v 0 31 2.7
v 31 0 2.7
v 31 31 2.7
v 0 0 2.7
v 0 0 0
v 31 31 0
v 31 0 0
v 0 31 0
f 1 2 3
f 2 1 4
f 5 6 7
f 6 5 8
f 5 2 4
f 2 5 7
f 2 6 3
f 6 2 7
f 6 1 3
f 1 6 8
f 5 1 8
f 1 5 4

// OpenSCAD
/* Warning, this is a very basic generator with a lot of approximation 
input data : [B1BGA, NGC, 31x31x2.70mm, 896, , A, C04-25475A]
generated by com.zoubworld.electronics.cad.model3d.Basic
Date : Sun Feb 15 10:50:49 CET 2026
*/

//body
color("black")
translate([0,0,0])
cube([31.0,31.0,2.7], center=false);
